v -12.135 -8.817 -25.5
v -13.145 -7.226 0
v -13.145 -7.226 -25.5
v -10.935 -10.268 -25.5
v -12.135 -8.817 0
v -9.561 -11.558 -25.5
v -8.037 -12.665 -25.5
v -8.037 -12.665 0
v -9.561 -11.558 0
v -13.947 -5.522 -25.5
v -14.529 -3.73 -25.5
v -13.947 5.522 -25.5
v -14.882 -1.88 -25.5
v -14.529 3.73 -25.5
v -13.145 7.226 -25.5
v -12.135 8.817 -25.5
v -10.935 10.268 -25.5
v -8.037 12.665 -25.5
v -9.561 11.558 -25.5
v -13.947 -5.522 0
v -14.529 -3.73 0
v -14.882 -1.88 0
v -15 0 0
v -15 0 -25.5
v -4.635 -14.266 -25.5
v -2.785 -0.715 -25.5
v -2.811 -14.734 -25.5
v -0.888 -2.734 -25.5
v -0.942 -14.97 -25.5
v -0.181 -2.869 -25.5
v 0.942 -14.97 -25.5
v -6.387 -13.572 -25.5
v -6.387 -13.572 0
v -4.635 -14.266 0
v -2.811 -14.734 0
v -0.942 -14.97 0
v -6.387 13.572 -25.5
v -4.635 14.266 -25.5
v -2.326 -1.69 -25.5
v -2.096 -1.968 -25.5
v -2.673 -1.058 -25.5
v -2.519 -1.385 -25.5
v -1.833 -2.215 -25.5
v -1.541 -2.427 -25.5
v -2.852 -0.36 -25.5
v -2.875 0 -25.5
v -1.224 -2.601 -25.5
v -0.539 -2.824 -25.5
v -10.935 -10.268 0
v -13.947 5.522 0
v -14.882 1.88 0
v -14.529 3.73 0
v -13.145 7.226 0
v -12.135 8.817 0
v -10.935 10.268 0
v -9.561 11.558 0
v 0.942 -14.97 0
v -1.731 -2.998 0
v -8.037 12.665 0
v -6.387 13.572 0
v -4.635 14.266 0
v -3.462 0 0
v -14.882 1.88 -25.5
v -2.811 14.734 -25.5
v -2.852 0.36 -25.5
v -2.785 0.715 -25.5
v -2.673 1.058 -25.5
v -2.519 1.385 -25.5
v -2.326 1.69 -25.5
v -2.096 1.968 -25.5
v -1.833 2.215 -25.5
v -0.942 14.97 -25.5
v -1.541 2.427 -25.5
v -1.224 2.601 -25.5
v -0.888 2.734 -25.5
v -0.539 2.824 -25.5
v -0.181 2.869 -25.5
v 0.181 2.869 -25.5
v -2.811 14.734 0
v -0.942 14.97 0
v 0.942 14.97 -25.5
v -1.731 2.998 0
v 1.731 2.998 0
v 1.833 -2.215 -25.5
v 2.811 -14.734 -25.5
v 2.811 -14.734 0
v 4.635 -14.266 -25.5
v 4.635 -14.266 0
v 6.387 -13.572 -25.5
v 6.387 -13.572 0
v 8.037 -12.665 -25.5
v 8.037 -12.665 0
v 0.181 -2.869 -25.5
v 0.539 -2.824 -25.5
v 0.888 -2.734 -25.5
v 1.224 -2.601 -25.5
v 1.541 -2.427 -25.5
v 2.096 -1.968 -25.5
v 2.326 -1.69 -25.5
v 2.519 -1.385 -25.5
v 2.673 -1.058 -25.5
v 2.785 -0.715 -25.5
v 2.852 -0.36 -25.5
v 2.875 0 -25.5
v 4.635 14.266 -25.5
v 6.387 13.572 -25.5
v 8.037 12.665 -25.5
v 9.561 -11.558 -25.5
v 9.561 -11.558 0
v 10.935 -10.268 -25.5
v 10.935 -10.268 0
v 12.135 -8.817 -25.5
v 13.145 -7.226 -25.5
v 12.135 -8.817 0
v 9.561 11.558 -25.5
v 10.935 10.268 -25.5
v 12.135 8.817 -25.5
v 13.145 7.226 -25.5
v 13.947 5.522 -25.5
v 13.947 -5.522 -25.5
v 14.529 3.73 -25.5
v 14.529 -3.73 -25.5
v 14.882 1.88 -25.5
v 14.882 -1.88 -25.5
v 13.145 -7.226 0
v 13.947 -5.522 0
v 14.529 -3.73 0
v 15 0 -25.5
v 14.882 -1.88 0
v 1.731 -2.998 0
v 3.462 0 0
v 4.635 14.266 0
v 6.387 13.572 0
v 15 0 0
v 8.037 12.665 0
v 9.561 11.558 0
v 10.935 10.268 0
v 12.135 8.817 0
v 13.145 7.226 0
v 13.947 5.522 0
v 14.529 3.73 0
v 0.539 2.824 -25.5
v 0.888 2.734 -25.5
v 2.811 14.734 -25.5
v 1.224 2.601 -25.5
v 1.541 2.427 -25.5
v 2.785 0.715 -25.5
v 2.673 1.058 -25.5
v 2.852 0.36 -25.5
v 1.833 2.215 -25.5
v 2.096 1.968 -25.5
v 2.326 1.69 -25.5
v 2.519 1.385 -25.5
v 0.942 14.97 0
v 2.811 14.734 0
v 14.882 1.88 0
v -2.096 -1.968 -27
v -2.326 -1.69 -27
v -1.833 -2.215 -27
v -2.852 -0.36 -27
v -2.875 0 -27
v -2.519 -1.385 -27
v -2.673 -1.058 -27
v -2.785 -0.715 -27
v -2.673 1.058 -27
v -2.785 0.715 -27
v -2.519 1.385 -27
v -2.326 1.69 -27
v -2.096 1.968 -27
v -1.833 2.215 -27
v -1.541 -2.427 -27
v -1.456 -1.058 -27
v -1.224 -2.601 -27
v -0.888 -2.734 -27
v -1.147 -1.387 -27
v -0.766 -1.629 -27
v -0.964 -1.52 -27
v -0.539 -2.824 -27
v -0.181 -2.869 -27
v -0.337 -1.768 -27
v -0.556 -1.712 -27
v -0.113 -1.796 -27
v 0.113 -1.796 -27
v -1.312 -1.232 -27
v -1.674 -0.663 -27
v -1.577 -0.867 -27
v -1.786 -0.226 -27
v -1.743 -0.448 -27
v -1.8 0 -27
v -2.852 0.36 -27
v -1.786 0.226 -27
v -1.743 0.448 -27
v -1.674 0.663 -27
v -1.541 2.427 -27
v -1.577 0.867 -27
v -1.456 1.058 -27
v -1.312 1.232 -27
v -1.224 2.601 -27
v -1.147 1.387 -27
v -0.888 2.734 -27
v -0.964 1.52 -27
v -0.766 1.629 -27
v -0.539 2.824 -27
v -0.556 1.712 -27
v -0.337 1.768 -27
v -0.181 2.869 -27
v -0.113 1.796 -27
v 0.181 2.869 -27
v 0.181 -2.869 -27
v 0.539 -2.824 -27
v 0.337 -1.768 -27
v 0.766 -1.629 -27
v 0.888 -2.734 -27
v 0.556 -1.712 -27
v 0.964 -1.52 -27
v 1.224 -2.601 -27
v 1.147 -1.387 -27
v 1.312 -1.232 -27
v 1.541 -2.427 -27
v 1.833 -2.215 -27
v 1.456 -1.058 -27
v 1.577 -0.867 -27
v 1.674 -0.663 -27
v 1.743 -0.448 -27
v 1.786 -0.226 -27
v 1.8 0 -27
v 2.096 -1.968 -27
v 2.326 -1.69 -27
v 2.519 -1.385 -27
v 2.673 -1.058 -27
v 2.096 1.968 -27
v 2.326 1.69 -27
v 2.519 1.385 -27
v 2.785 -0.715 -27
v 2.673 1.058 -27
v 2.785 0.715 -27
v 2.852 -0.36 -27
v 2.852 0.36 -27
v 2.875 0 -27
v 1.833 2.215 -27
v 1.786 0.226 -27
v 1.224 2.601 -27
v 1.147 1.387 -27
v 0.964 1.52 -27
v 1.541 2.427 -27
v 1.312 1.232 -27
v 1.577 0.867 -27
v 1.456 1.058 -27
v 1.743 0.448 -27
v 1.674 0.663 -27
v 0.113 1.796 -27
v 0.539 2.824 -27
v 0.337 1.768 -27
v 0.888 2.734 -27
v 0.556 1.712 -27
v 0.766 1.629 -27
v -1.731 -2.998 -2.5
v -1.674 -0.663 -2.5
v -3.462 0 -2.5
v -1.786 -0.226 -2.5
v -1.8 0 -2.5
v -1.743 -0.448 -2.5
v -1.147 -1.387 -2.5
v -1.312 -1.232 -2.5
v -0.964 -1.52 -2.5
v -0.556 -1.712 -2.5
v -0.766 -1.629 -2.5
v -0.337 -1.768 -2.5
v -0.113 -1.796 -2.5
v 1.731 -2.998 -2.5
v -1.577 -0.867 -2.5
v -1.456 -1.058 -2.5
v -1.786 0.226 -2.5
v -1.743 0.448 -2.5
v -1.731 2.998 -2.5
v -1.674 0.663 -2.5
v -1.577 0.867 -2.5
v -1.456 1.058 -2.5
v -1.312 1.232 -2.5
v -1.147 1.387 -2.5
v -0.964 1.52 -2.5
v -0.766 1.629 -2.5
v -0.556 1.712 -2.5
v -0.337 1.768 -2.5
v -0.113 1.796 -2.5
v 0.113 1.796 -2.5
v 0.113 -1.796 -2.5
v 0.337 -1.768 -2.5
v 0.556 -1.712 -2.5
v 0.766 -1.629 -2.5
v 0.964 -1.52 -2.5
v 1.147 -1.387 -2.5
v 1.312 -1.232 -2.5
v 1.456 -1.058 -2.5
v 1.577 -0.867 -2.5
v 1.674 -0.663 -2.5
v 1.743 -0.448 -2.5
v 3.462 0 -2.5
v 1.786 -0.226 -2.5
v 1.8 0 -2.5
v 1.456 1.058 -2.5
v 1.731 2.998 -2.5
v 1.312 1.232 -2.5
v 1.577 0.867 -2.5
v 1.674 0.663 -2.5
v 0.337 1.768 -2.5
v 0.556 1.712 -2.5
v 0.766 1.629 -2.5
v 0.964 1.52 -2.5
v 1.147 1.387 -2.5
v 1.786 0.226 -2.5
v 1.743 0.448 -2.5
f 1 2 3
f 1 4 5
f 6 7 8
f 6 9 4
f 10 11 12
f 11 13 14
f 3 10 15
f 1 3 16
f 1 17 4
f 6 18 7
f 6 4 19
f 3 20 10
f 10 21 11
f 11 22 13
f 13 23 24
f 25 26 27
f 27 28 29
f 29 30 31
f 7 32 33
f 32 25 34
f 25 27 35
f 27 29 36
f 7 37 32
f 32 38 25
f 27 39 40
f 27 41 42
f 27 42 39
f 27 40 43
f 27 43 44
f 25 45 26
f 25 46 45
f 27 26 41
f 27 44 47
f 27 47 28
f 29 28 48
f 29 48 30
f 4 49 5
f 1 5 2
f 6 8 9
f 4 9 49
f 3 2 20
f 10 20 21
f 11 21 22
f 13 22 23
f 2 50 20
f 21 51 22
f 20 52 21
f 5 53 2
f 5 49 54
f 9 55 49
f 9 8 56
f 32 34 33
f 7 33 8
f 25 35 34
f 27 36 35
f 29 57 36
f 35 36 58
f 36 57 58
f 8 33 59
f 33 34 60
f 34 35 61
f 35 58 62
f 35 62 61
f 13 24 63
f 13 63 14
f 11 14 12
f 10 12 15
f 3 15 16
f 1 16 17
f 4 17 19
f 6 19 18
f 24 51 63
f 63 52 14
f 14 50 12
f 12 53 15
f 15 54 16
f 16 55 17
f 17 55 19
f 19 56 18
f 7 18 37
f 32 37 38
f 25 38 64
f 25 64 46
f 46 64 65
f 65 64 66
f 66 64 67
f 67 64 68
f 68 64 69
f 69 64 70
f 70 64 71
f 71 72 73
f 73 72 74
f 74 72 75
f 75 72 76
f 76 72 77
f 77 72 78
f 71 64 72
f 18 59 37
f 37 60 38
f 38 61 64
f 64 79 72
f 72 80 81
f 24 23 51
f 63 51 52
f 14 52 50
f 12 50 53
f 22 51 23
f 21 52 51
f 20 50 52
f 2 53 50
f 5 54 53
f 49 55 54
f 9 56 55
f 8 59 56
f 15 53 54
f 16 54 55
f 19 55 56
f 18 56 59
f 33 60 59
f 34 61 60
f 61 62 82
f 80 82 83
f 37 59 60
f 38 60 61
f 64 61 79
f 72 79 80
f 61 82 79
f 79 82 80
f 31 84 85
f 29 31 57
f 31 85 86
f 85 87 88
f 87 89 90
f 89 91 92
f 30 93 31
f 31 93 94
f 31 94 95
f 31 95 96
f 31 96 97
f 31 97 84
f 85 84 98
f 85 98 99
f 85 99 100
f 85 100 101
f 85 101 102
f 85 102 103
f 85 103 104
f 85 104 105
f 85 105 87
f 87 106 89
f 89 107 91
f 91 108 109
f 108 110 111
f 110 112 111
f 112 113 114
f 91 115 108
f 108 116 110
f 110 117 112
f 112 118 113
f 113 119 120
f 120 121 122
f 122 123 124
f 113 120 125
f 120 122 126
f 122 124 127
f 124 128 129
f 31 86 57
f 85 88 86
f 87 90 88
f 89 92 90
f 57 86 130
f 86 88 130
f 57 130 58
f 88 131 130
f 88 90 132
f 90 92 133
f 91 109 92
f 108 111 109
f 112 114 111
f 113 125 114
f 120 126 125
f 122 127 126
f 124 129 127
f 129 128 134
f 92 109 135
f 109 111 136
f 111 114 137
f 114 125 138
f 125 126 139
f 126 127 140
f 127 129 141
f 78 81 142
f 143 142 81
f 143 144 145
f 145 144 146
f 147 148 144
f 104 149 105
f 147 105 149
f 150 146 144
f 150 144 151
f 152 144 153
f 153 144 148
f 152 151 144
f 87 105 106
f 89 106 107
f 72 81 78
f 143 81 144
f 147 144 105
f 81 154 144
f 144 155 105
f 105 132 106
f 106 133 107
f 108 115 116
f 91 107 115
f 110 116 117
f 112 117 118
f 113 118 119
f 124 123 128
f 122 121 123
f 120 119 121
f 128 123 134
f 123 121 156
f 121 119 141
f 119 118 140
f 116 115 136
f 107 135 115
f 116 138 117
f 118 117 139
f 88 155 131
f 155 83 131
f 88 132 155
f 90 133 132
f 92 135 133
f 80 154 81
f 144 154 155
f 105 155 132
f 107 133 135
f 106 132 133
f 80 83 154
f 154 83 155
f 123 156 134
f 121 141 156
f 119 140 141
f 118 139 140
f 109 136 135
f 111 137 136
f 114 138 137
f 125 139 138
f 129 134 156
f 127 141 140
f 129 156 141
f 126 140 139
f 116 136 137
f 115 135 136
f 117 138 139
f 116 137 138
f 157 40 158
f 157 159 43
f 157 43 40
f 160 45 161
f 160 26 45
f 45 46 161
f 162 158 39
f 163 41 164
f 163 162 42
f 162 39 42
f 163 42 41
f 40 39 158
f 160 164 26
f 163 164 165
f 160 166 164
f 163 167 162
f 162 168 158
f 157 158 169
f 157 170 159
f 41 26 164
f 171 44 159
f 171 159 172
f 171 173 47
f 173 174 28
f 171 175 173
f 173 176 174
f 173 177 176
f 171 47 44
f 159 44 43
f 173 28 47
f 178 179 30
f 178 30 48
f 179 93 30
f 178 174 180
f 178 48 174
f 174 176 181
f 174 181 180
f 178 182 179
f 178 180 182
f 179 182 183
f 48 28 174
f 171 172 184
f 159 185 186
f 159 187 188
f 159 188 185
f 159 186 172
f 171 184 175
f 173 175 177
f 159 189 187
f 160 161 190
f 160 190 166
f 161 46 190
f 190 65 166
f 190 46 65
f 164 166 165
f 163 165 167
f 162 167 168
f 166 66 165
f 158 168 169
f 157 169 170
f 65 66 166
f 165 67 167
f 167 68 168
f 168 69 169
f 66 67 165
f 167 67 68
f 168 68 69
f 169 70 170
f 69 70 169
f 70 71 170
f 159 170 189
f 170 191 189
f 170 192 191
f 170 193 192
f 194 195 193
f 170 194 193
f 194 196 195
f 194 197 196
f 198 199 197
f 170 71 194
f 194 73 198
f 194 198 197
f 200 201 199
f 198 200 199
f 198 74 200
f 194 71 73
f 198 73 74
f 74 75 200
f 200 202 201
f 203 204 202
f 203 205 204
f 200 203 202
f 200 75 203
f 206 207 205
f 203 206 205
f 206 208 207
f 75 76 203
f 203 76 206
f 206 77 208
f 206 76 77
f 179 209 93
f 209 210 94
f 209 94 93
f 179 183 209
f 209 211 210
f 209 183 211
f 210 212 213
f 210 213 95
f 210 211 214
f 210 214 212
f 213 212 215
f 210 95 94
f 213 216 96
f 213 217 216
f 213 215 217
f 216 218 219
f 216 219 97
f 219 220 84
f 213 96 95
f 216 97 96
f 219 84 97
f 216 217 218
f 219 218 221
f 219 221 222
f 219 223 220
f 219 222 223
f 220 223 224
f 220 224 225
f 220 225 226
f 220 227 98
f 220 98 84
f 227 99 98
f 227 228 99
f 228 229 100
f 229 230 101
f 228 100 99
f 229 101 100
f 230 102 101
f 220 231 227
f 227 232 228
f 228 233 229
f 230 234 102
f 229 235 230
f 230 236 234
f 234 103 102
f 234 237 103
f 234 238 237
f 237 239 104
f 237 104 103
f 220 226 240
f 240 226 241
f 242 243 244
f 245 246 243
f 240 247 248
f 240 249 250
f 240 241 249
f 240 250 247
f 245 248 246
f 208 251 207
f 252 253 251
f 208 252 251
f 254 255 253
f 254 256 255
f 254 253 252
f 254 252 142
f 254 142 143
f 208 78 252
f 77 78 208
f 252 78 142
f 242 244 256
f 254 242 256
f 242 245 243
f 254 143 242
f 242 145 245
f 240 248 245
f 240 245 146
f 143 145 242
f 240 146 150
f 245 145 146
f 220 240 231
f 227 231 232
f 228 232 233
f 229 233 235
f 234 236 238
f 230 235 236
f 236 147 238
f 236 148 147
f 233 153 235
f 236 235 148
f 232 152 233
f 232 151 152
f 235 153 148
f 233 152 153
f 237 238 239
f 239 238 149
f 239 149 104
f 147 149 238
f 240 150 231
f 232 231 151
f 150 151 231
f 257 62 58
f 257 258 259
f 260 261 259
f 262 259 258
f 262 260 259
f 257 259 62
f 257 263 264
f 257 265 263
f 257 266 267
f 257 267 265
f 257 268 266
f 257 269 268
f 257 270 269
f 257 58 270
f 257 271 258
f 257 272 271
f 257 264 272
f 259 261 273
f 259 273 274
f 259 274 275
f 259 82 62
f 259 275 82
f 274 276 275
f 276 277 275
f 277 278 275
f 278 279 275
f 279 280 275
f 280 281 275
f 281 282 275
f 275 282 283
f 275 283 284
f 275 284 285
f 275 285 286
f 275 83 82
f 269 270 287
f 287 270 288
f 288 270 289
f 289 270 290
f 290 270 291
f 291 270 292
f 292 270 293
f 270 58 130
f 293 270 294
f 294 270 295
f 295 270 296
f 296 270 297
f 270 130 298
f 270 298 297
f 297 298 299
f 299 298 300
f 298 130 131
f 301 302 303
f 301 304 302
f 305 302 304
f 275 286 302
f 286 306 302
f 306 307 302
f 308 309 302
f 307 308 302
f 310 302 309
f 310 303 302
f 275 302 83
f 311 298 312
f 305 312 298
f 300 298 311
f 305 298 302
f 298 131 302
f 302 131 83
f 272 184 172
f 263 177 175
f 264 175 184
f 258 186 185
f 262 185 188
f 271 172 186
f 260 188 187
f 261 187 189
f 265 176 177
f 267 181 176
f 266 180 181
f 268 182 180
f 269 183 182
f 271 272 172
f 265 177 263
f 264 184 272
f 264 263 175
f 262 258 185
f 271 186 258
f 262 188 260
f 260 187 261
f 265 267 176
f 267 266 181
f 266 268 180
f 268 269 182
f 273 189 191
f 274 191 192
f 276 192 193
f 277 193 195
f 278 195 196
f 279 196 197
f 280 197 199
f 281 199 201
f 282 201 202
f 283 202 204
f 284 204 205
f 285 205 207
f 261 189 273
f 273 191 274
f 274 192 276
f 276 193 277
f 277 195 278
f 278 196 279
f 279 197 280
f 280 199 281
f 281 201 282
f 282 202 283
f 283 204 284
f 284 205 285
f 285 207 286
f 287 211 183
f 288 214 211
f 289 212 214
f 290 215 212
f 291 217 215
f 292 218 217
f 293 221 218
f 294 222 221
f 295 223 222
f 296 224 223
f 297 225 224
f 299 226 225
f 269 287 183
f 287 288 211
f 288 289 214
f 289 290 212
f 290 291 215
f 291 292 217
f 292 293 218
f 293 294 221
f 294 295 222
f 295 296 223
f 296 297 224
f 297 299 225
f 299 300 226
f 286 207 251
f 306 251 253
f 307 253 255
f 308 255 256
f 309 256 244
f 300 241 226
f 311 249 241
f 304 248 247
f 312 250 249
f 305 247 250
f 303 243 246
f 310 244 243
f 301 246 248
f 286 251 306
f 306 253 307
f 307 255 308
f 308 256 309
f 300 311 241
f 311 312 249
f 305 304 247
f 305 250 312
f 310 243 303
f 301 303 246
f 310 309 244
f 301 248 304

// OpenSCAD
$fn = 50;

difference() {
	union() {
		translate(v = [0, 0, -25.5]) {
			cylinder(h = 25.5, r = 15.0);
		}
		#translate(v = [0, 0, -27.0]) {
			cylinder(h = 27, r = 2.875);
		}
	}
	union() {
		translate(v = [0, 0, 0]) {
			rotate(a = [0, 0, 0]) {
				difference() {
					union() {
						translate(v = [0, 0, -2.5]) {
							linear_extrude(height = 2.5) {
								polygon(points = [[3.4619999999999997, 0.0], [1.7310000000000003, 2.9981799479017264], [-1.7309999999999992, 2.9981799479017264], [-3.4619999999999997, 4.2397272186481365e-16], [-1.7310000000000014, -2.998179947901726], [1.7309999999999977, -2.9981799479017277]]);
							}
						}
					}
					union();
				}
			}
		}
		#translate(v = [0, 0, -100.0]) {
			cylinder(h = 200, r = 1.8);
		}
	}
}
